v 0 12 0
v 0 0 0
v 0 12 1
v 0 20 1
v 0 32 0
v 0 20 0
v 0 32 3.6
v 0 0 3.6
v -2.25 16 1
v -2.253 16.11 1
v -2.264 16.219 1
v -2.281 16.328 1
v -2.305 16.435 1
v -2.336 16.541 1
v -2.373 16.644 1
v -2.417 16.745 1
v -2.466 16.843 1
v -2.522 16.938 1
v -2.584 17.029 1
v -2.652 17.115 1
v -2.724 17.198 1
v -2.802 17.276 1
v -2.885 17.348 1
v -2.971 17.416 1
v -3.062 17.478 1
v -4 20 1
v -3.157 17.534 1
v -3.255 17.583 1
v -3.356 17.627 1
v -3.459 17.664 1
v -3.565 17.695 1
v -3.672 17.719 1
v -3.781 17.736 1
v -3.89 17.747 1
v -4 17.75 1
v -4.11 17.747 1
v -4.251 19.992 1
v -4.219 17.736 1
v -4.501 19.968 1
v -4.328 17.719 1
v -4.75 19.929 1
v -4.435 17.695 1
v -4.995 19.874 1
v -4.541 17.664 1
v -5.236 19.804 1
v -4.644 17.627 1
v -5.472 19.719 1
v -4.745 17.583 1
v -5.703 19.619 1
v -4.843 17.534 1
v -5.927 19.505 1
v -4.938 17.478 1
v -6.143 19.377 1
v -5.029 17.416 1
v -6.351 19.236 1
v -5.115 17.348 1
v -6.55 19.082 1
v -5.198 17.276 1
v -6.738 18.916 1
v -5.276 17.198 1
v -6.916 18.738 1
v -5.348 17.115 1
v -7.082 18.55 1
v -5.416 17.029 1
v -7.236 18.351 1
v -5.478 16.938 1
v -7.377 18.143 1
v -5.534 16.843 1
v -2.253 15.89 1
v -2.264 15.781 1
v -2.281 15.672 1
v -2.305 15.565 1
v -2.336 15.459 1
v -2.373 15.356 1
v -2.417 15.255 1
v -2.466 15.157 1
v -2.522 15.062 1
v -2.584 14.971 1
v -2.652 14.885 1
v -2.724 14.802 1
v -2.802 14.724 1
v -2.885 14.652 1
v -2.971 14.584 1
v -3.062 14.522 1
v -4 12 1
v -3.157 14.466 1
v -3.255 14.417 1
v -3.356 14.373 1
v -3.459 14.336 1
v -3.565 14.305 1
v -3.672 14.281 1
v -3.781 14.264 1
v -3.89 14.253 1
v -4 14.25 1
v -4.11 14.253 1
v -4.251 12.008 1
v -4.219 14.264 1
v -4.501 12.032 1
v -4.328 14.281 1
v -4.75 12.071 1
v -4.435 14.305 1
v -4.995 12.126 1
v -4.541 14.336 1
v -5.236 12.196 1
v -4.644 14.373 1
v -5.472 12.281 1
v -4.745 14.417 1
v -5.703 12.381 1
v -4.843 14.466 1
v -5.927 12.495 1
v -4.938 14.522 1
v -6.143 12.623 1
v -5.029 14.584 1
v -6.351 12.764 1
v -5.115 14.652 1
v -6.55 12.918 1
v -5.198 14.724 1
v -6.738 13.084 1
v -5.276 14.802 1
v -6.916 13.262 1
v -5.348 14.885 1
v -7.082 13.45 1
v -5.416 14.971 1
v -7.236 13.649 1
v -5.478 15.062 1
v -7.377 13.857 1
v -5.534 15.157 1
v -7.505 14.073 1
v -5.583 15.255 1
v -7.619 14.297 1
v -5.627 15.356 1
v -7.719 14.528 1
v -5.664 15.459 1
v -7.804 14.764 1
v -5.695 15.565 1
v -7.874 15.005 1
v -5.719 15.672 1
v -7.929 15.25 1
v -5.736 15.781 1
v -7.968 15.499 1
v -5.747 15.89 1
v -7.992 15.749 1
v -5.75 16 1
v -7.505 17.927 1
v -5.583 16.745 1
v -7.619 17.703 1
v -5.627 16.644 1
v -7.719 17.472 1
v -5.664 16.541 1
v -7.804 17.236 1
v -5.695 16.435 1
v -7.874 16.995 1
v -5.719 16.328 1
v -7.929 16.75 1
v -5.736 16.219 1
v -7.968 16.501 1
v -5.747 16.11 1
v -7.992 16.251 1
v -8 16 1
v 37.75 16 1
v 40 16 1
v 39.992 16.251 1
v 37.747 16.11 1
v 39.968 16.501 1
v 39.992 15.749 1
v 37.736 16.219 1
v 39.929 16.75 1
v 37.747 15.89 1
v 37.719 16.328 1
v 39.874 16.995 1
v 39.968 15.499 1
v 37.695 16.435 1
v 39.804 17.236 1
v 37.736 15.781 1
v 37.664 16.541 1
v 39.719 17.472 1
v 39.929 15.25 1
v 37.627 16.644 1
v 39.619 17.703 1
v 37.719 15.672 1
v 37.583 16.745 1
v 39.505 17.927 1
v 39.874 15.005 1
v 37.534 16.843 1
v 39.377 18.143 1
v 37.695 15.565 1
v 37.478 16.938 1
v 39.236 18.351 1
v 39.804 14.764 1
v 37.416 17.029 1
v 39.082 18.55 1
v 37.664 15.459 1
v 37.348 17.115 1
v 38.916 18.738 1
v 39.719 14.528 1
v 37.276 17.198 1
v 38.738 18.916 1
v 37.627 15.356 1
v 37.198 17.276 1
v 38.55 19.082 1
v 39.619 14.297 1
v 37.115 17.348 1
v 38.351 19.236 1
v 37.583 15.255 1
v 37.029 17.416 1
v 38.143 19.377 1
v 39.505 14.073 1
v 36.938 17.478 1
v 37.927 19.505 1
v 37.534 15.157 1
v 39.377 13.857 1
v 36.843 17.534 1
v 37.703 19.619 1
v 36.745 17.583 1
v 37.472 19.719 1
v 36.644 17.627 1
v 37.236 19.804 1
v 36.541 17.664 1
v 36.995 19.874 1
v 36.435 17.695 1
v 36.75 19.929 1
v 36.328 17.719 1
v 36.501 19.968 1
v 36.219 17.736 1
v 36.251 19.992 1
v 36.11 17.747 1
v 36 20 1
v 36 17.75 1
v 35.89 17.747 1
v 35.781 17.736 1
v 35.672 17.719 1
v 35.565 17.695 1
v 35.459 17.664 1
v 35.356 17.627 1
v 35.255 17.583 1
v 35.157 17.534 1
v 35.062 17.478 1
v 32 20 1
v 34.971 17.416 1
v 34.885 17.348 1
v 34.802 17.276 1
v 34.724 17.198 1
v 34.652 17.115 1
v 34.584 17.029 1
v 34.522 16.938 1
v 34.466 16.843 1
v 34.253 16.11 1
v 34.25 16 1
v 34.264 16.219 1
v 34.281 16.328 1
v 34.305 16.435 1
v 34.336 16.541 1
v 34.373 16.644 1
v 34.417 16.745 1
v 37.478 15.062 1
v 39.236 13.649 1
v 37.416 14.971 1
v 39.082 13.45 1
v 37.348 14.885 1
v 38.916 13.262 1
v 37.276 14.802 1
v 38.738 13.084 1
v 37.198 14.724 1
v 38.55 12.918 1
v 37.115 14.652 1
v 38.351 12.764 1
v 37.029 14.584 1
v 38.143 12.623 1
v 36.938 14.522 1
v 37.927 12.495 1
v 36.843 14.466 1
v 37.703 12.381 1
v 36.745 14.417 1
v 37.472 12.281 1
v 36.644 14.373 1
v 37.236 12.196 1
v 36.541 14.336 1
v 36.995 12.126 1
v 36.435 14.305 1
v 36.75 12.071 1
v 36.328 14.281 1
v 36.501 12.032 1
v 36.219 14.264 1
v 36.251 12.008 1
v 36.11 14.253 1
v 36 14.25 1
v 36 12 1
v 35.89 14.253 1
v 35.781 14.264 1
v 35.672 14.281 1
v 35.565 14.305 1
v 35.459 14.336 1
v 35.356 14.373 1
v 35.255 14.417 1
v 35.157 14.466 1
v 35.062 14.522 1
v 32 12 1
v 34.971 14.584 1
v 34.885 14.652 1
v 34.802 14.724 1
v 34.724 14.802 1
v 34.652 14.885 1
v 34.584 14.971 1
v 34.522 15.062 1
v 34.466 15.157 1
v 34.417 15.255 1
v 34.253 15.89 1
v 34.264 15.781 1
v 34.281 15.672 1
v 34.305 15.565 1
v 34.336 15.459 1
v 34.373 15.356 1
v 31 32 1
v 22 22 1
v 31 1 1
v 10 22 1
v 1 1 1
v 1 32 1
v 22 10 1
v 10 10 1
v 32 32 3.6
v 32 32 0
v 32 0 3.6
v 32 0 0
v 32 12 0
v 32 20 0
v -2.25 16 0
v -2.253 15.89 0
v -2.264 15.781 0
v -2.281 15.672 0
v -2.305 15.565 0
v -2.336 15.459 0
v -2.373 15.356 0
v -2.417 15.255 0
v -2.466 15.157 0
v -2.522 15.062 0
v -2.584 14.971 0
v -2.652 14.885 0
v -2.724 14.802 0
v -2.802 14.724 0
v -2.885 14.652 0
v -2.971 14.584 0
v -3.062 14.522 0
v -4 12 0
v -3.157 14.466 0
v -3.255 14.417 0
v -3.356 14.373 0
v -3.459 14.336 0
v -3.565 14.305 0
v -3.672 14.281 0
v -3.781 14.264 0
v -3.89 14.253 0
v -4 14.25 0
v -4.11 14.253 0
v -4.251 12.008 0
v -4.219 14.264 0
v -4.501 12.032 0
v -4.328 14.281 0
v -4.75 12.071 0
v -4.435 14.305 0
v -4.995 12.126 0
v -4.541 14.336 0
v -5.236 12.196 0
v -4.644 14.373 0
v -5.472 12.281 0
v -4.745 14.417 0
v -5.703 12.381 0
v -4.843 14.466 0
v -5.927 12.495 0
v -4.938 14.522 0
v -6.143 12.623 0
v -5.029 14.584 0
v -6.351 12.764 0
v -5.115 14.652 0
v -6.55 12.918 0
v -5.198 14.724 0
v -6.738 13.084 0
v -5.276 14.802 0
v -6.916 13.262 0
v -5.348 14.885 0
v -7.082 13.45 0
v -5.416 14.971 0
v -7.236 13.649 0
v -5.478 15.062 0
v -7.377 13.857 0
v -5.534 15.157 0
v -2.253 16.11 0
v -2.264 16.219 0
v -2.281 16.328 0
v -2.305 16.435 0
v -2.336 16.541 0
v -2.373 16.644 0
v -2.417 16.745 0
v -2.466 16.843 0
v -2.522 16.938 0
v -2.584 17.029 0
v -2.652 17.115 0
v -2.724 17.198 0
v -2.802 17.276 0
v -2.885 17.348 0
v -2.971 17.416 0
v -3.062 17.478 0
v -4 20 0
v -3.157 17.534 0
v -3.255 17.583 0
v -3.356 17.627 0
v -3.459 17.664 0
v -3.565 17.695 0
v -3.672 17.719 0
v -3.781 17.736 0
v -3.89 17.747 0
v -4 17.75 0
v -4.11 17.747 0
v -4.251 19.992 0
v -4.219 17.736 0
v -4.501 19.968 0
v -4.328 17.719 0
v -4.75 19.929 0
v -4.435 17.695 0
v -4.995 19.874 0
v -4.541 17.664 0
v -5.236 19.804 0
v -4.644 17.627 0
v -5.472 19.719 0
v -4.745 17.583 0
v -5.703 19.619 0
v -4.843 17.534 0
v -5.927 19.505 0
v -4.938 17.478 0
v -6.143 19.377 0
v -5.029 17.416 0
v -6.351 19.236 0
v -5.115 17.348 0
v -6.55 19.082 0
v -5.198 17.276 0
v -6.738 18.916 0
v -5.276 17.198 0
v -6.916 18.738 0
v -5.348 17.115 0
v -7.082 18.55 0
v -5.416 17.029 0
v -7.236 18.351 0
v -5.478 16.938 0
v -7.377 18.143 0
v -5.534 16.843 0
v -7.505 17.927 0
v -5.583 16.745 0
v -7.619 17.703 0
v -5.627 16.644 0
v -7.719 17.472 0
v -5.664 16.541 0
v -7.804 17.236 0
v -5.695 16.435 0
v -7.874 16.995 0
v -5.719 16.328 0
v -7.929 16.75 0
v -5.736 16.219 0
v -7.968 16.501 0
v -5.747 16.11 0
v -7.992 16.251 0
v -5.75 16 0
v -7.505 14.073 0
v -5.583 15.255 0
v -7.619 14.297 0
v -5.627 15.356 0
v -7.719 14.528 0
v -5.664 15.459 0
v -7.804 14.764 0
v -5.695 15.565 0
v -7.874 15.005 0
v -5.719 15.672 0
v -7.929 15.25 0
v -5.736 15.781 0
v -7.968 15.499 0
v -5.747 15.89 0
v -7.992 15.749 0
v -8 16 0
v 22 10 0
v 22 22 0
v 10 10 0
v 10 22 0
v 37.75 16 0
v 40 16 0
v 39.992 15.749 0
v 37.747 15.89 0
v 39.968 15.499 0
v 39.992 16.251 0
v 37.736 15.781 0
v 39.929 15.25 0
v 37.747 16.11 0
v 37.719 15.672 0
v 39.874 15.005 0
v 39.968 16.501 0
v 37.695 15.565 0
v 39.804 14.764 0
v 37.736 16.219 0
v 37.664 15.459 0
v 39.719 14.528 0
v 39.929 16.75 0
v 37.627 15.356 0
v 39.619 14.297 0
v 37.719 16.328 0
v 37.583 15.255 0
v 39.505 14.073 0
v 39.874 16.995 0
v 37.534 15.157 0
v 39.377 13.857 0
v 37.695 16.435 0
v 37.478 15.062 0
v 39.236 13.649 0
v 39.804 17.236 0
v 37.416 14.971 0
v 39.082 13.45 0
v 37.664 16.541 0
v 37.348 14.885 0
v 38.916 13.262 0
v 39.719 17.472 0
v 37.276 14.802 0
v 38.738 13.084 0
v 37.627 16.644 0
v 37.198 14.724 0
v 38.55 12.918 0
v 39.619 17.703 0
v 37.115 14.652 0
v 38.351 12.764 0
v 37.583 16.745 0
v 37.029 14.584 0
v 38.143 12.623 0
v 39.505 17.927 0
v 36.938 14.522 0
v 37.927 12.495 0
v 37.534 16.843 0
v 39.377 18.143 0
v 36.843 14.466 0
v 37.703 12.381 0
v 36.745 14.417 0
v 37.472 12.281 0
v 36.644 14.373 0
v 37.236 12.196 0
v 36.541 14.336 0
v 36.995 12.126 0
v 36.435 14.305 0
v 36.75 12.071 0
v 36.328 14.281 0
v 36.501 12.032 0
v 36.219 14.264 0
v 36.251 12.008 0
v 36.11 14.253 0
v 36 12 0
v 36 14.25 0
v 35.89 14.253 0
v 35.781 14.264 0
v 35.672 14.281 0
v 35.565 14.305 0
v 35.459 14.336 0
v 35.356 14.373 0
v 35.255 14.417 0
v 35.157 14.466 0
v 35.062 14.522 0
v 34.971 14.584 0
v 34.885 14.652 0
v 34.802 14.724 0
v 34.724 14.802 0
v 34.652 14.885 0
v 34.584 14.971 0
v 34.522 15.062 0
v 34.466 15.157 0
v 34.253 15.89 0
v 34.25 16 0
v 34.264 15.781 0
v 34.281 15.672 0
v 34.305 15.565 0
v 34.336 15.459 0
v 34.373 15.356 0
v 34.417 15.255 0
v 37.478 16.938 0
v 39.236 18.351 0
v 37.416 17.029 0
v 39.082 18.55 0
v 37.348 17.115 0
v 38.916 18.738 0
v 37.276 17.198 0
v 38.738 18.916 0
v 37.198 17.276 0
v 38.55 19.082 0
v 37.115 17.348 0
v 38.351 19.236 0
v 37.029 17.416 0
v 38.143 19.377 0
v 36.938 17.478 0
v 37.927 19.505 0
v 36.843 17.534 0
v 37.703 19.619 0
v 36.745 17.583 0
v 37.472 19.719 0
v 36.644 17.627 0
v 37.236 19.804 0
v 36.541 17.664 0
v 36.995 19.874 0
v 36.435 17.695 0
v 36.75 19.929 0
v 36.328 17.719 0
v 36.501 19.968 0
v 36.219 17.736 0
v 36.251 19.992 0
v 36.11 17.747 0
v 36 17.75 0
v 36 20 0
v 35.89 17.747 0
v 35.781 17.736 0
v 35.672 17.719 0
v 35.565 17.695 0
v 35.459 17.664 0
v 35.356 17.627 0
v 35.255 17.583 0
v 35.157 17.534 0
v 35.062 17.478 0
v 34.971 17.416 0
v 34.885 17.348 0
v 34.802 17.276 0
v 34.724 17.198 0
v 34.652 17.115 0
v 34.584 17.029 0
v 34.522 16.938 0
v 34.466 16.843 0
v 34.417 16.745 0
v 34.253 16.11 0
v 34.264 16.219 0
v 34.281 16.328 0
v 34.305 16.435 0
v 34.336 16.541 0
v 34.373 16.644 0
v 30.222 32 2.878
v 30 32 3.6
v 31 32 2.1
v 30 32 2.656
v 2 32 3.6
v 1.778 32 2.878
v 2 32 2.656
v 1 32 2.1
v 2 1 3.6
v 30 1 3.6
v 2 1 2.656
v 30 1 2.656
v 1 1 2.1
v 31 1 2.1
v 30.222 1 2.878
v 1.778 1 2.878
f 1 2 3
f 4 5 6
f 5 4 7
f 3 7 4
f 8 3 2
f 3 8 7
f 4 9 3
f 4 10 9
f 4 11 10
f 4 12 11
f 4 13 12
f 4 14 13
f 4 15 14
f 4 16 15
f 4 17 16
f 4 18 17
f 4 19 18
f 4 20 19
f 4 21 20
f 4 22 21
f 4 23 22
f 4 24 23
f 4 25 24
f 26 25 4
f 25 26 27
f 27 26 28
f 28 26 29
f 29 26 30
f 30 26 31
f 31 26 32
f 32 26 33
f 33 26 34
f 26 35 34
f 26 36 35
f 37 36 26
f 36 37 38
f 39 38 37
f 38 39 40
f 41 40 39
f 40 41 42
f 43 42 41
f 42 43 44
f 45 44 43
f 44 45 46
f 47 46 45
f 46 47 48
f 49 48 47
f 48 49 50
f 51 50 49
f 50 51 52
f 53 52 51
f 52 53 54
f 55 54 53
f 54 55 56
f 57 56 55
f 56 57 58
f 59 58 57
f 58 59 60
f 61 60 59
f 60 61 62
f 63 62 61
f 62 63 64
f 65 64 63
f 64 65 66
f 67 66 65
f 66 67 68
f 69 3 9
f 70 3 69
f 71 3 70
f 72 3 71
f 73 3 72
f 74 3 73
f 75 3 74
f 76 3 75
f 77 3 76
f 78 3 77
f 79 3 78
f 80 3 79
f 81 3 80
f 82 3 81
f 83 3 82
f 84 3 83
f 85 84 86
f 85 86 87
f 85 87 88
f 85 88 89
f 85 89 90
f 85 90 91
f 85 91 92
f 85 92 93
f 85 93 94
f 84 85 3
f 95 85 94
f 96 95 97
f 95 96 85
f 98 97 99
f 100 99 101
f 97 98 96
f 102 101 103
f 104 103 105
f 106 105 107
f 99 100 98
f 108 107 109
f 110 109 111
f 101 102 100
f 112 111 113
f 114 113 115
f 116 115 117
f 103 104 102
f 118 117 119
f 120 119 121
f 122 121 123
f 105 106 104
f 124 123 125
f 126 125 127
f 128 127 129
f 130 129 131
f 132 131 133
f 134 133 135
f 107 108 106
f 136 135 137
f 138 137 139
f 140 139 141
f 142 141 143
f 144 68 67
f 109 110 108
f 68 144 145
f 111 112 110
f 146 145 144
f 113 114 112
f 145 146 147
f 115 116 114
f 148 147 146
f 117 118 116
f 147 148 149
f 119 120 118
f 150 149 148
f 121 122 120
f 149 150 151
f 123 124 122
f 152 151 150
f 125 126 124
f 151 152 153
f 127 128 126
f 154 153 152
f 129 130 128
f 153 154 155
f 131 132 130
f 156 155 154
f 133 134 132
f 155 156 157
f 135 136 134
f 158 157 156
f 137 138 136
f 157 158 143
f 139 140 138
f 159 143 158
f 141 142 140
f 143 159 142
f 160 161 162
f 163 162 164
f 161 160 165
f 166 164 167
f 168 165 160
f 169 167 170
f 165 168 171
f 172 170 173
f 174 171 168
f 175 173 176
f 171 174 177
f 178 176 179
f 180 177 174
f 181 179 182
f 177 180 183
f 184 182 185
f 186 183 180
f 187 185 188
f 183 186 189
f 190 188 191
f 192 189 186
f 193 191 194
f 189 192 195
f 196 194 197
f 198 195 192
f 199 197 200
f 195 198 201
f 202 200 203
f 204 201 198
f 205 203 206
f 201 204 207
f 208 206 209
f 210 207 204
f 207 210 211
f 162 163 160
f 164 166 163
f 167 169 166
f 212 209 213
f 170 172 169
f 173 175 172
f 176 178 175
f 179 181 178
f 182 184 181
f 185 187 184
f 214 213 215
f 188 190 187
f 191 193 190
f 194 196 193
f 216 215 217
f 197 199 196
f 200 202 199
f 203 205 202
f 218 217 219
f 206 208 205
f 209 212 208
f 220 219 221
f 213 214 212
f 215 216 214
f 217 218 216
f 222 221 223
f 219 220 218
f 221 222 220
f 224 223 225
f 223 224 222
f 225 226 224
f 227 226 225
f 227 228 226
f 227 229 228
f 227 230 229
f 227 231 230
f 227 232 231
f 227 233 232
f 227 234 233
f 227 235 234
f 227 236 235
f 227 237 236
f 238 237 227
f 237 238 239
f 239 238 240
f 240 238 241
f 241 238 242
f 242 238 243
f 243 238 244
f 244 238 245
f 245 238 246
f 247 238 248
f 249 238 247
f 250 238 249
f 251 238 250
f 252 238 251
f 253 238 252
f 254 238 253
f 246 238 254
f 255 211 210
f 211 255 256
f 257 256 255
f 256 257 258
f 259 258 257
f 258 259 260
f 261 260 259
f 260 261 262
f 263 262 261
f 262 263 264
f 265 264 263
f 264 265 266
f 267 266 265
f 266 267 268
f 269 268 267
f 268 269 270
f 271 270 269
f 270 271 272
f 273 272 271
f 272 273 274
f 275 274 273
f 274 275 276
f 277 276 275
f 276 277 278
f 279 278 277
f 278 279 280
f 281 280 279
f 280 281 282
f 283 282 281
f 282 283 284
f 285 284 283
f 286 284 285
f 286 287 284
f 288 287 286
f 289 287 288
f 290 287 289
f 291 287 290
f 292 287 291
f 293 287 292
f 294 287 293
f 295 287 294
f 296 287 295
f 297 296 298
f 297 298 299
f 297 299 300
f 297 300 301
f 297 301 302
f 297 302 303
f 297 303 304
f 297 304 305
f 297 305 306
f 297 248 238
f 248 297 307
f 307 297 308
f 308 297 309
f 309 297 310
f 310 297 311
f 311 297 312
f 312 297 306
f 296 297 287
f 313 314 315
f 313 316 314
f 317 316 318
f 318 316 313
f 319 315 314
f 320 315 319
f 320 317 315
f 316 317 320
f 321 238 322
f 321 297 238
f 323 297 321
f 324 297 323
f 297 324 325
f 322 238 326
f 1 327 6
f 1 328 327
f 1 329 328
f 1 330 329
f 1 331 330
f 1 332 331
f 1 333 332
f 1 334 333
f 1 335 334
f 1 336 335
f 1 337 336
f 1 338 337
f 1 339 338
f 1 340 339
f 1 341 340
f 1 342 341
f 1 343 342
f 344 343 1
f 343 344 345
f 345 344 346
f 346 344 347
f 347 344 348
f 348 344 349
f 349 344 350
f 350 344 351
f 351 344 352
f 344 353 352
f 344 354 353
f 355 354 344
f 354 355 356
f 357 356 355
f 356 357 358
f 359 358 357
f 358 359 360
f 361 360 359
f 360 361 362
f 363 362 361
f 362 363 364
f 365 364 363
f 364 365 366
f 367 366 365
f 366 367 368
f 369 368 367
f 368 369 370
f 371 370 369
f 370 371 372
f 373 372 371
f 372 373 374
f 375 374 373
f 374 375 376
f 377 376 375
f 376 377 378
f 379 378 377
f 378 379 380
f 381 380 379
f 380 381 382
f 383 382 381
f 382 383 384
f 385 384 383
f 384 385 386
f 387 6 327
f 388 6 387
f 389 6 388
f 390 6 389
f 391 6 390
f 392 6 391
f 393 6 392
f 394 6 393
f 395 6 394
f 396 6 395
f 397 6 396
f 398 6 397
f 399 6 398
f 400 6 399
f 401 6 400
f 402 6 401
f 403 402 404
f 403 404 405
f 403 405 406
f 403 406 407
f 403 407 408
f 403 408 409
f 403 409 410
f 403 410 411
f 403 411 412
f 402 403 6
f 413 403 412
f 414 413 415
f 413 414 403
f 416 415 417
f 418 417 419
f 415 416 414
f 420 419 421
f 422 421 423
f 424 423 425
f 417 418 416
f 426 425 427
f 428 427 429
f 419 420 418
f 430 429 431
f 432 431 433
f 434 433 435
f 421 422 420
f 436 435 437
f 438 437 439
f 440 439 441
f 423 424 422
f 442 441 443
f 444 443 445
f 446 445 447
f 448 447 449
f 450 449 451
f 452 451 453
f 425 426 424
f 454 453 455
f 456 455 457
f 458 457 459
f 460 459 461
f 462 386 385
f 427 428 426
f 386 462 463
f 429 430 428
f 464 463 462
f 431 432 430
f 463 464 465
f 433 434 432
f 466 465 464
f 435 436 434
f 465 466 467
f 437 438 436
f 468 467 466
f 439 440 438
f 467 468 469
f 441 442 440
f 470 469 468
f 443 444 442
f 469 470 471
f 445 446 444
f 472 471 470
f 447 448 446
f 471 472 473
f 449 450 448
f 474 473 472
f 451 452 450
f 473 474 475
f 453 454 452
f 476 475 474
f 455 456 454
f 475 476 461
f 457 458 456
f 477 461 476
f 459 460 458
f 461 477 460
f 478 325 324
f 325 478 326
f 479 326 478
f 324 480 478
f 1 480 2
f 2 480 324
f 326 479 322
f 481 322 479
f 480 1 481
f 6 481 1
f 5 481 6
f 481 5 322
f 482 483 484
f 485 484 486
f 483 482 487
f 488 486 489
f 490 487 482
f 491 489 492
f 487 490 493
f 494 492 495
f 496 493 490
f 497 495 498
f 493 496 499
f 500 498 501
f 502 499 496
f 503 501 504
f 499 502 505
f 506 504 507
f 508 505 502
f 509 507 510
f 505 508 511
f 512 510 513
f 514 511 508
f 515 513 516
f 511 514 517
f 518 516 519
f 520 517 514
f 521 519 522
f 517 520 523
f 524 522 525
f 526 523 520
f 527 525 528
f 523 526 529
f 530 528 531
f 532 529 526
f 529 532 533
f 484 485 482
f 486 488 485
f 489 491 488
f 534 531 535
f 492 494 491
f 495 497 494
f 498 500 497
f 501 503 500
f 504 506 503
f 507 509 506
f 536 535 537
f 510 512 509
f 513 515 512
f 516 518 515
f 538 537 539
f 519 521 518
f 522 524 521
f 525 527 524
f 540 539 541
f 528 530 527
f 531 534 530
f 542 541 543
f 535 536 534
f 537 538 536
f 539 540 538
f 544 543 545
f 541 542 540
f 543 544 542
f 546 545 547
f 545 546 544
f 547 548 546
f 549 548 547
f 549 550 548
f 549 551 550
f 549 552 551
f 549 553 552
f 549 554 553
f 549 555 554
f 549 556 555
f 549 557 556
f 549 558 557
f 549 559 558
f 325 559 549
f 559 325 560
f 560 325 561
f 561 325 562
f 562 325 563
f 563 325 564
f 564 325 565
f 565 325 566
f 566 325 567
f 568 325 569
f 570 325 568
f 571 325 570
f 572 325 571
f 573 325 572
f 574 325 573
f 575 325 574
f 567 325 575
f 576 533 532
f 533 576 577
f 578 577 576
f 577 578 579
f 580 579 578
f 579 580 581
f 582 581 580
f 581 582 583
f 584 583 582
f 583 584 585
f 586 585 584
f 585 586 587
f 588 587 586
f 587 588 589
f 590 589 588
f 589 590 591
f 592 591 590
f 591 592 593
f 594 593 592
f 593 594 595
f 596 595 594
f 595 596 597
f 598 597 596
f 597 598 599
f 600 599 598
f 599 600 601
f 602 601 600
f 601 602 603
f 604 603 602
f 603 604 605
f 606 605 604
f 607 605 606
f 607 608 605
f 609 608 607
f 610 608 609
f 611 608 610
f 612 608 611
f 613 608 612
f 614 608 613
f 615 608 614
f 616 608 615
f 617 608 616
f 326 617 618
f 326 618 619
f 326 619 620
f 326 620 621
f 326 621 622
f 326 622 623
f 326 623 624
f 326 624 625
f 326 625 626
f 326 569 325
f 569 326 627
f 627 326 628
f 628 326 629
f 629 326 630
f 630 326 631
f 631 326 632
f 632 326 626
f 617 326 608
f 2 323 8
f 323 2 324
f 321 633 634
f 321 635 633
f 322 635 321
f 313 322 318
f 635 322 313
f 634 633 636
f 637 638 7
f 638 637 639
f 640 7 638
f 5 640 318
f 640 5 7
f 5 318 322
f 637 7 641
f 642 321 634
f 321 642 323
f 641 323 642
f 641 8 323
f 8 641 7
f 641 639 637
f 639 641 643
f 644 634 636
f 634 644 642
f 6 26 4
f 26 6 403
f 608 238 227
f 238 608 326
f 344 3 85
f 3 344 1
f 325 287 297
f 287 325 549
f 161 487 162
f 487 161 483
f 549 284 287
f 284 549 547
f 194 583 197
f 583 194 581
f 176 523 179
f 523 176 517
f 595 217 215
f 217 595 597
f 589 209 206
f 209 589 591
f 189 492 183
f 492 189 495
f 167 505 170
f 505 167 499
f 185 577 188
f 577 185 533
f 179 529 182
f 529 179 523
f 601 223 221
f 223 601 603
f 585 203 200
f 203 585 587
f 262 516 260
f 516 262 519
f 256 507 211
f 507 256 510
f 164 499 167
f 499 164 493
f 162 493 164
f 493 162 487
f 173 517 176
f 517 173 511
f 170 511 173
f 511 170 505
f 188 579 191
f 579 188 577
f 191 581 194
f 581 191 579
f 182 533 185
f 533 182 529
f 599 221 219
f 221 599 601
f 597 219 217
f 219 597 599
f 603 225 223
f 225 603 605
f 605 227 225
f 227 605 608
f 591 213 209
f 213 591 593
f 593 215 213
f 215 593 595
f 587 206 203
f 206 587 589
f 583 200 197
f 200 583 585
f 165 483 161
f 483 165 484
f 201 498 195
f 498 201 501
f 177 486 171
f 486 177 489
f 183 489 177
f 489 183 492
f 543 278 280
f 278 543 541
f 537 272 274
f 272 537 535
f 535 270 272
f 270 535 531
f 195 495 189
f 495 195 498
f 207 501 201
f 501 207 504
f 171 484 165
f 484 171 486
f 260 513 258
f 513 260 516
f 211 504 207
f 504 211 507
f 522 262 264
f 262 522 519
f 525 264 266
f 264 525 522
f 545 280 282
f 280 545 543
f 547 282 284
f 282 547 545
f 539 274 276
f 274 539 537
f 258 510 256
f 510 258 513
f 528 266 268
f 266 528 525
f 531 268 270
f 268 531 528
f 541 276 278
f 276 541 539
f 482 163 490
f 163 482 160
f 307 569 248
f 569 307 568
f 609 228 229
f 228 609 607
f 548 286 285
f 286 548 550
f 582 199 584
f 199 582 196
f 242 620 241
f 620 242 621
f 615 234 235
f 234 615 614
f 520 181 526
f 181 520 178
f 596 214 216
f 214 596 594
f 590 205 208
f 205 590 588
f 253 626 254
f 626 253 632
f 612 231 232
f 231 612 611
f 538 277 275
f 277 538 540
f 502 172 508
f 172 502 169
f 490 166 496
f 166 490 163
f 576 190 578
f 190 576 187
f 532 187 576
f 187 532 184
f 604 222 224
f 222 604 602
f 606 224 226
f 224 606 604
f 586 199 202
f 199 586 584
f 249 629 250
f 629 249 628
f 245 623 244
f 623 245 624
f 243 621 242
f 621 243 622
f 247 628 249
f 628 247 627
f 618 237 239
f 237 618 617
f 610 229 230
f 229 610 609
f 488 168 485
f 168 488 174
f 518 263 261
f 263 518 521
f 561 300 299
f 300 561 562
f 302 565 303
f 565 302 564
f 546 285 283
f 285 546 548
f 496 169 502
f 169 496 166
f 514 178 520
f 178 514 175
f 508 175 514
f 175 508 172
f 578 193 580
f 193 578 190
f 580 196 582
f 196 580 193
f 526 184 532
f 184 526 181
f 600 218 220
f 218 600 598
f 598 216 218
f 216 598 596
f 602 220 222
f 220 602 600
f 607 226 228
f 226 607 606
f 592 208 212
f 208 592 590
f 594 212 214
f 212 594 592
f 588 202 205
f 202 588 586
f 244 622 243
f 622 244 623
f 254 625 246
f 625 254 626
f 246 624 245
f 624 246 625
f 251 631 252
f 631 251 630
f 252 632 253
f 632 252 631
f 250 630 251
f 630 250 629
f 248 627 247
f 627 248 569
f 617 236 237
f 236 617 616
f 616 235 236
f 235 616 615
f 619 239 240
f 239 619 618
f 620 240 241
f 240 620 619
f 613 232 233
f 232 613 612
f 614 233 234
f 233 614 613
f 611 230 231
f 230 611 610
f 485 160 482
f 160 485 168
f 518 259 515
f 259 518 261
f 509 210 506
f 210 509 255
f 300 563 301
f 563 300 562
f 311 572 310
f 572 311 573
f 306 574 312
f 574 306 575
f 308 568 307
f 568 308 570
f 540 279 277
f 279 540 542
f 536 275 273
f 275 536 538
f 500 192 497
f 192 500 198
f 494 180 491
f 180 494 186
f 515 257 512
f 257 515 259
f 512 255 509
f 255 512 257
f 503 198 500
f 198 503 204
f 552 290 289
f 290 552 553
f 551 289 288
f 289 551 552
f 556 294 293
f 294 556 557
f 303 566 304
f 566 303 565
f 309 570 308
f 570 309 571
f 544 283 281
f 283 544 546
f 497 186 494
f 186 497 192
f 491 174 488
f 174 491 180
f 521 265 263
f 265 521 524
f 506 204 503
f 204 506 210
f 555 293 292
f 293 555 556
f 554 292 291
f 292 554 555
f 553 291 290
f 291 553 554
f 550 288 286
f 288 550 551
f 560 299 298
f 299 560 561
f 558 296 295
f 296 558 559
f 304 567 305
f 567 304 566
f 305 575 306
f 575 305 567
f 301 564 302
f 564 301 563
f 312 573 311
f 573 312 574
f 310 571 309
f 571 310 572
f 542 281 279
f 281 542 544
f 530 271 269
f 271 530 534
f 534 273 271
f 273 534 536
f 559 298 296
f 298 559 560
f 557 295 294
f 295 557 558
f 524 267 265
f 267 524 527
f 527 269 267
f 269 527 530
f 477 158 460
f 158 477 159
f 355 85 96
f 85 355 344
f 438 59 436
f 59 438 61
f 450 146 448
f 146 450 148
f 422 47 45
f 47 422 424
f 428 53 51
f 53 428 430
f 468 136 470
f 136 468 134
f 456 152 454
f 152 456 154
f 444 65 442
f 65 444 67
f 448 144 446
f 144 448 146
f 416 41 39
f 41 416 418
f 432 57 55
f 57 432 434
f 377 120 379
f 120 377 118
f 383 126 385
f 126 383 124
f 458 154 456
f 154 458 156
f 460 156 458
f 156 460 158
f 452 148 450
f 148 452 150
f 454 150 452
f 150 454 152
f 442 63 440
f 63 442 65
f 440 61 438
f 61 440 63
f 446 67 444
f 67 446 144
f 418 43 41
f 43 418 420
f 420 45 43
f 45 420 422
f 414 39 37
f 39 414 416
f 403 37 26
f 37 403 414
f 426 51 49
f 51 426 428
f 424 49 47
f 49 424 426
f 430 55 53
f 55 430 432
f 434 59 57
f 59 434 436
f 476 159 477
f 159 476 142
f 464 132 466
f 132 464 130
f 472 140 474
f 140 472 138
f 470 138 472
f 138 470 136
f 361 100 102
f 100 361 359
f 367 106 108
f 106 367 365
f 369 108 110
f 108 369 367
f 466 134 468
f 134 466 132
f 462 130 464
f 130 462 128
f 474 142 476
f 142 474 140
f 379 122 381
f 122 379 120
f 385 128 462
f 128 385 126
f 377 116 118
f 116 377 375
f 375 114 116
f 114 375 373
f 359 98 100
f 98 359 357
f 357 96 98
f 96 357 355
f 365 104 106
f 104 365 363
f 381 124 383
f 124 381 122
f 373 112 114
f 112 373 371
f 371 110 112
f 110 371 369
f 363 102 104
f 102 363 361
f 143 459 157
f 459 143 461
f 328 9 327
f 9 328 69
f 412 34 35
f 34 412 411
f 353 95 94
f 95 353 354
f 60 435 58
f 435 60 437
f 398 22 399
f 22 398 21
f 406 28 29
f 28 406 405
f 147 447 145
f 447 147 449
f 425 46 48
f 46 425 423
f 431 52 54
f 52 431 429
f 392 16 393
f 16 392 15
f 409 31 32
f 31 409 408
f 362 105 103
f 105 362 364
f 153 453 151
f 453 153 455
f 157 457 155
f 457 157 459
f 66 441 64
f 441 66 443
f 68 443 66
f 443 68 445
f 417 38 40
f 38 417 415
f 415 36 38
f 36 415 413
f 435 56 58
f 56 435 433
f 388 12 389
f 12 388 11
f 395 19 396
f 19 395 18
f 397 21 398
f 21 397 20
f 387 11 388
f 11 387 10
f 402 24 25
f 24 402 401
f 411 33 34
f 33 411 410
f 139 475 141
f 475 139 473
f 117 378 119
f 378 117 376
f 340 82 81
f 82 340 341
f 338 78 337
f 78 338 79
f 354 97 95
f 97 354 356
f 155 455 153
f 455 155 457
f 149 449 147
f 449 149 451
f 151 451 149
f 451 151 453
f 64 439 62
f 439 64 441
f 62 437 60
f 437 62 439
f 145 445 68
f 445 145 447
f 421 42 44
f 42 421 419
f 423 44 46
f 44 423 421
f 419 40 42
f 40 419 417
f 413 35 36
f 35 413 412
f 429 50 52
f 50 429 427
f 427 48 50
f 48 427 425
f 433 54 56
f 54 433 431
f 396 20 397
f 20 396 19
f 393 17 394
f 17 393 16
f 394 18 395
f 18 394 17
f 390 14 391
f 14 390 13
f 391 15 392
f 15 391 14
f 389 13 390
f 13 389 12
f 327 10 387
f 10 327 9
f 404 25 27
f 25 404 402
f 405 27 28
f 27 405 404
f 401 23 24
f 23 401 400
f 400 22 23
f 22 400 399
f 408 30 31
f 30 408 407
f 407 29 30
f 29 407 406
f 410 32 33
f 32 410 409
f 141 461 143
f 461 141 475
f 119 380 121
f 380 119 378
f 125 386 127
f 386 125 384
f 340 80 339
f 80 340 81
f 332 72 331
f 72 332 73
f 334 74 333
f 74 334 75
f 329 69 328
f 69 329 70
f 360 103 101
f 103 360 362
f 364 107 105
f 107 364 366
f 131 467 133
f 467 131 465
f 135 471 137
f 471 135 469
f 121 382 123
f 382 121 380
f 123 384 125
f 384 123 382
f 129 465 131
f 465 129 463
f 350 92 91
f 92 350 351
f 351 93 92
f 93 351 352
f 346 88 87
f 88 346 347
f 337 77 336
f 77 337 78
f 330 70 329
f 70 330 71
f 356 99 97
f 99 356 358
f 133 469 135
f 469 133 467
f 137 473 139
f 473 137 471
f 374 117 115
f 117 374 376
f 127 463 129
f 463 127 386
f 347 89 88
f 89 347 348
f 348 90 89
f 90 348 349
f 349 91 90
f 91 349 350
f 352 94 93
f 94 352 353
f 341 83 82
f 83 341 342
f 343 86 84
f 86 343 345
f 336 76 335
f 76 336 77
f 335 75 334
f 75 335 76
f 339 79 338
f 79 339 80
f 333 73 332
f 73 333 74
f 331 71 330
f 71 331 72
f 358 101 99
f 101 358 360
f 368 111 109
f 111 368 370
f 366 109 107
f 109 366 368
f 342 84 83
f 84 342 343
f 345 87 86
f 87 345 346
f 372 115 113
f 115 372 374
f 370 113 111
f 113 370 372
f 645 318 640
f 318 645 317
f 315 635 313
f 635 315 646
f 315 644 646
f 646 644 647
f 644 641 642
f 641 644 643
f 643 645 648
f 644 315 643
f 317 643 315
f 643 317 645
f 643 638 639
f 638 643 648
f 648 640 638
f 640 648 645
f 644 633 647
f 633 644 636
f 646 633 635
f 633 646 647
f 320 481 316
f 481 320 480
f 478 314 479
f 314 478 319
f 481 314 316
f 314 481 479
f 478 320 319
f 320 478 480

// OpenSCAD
/* pcb_box_slide_with_tabs.scad
 * By Nicholas C Lewis - Jan 1, 2011
 * http://www.thingiverse.com/thing:5396 
 *
 * derived from pcb_box_slide.scad 
 *     Parametric, open PCB-box (slide-in) by chlunde
 *     http://www.thingiverse.com/thing:4071
 *
 * CHANGES
 * - adjusted to fit Arduino Mega
 * - added mounting tabs
 * - turned off cutouts
 * - adjusted bottom cutout size
 */


$fn=100;

pcb_width = 30;
pcb_length = 30;
pcb_height =1.1;
slisse = 1;

pcb_bottom_margin = 0;
wall_width_thick = 2;
wall_width = wall_width_thick-slisse;
box_height = 3.6;

// Tab and Mounting Parameters
tab_hole_radius=3.5/2;
tab_outer_radius=8/2;
tab_mount_width = 40;		// X - center to center of mounting hole
tab_mount_length = 0;		// Y - center to center of mounting hole



module tab() {
	difference(){
		union() {
			translate([-tab_outer_radius,-tab_outer_radius,0])
			cube([tab_outer_radius,2*tab_outer_radius,wall_width]);
			translate([-tab_outer_radius,0,0])
				cylinder(r=tab_outer_radius, h = wall_width);
		}
		translate([-tab_outer_radius,0,0])
		cylinder(r= tab_hole_radius, h = wall_width+3,center=true);
	}

}

module JDtab(X, Y) {
	rotate(atan(Y / X), [0,0,1])
	difference(){
		union() {
			translate([0,-tab_outer_radius,0])
			cube([sqrt(X*X+Y*Y),2*tab_outer_radius,wall_width]);
			translate([sqrt(X*X+Y*Y),0,0])
				cylinder(r=tab_outer_radius, h = wall_width);
		}
		translate([sqrt(X*X+Y*Y),0,0])
		cylinder(r= tab_hole_radius, h = wall_width+3,center=true);
	}

}

module box() {
  union() {
    cube([pcb_width + 2*wall_width, pcb_length + 2*wall_width, wall_width]);

    cube([wall_width_thick, pcb_length + 2*wall_width, box_height]);

    cube([pcb_width + 2*wall_width, wall_width_thick, box_height]);

    %translate([0, pcb_length+wall_width, 0])
      cube([pcb_width + 2*wall_width,wall_width,box_height]);
    translate([pcb_width + wall_width - slisse,0,0])
      cube([wall_width_thick, pcb_length + 2*wall_width, box_height]);
  }

// ORIGINAL Tabs
//comment out this part to remove tabs
// for(i=[5,(pcb_length + 2*wall_width)/2,pcb_length + 2*wall_width-5]){
//	translate([0,i,0])tab();
//	translate([pcb_width + 2*wall_width,i,0])mirror()tab();
// }

// JamesDavid's Tabs
  translate([(pcb_width + 2*wall_width)/2, (pcb_length + 2*wall_width)/2, 0]) {

// If you want tabs on the Left leave uncommented
   JDtab(tab_mount_width/2, tab_mount_length/2);
   JDtab(-tab_mount_width/2, tab_mount_length/2);

// If you want tabs on the Right leave uncommented
   mirror()JDtab(tab_mount_width/2, tab_mount_length/2);
   mirror()JDtab(-tab_mount_width/2, tab_mount_length/2);
  }
}

module pcb() {
  translate([wall_width, wall_width, wall_width + pcb_bottom_margin])
    cube([pcb_width,pcb_length + wall_width + 0.1,pcb_height]);
  translate([wall_width, wall_width, wall_width + pcb_bottom_margin+pcb_height])rotate([0,45,0])
    cube([pcb_height,pcb_length + wall_width + 0.1,pcb_height]);
  translate([wall_width+pcb_width-2*cos(45)*pcb_height, wall_width, wall_width + pcb_bottom_margin+pcb_height])rotate([0,45,0])
    cube([pcb_height,pcb_length + wall_width + 0.1,pcb_height]);
  translate([wall_width_thick, wall_width, wall_width + pcb_bottom_margin])
    cube([pcb_width-2*slisse,pcb_length + wall_width + 0.1,box_height]);

}



module holes() {
  *translate([wall_width + pcb_width/2, wall_width_thick + 0.1, pcb_width/2+wall_width])
    rotate(a=90,v=[1,0,0])
      cylinder(r=pcb_width/2, h=wall_width_thick + 0.2);

  *translate([-0.1, wall_width + pcb_length/2, pcb_length/2 + wall_width])
    rotate(a=90,v=[0,1,0])
      cylinder(r=pcb_length/2, h=wall_width_thick + 0.2);

  *translate([pcb_width + wall_width - slisse - 0.1, wall_width + pcb_length/2, pcb_length/2 + wall_width])
    rotate(a=90,v=[0,1,0])
      cylinder(r=pcb_length/2, h=wall_width_thick + 0.2);

 * translate([pcb_width/2 + wall_width, wall_width + pcb_length/2, -0.1])
    rotate(a=0,v=[0,1,0])
      cylinder(r=min(pcb_length,pcb_width)/2 - wall_width/2, h=wall_width_thick + 0.2);
   
  inner_margin = 9;
  translate([inner_margin +wall_width, inner_margin+wall_width, -0.1])
    cube([pcb_width-inner_margin*2,pcb_length -inner_margin*2,wall_width + 0.2]);
}

difference() {
 box();
 pcb();
 holes();
//  JDtab(tab_mount_width/2, tab_mount_length/2);

}

* color([1,0,0])
  translate([pcb_width/2 + wall_width, wall_width + pcb_length/2, -0.1])
    rotate(a=0,v=[0,1,0])
      cylinder(r=min(pcb_length,pcb_width)/2 - wall_width/2, h=wall_width_thick + 0.2);
